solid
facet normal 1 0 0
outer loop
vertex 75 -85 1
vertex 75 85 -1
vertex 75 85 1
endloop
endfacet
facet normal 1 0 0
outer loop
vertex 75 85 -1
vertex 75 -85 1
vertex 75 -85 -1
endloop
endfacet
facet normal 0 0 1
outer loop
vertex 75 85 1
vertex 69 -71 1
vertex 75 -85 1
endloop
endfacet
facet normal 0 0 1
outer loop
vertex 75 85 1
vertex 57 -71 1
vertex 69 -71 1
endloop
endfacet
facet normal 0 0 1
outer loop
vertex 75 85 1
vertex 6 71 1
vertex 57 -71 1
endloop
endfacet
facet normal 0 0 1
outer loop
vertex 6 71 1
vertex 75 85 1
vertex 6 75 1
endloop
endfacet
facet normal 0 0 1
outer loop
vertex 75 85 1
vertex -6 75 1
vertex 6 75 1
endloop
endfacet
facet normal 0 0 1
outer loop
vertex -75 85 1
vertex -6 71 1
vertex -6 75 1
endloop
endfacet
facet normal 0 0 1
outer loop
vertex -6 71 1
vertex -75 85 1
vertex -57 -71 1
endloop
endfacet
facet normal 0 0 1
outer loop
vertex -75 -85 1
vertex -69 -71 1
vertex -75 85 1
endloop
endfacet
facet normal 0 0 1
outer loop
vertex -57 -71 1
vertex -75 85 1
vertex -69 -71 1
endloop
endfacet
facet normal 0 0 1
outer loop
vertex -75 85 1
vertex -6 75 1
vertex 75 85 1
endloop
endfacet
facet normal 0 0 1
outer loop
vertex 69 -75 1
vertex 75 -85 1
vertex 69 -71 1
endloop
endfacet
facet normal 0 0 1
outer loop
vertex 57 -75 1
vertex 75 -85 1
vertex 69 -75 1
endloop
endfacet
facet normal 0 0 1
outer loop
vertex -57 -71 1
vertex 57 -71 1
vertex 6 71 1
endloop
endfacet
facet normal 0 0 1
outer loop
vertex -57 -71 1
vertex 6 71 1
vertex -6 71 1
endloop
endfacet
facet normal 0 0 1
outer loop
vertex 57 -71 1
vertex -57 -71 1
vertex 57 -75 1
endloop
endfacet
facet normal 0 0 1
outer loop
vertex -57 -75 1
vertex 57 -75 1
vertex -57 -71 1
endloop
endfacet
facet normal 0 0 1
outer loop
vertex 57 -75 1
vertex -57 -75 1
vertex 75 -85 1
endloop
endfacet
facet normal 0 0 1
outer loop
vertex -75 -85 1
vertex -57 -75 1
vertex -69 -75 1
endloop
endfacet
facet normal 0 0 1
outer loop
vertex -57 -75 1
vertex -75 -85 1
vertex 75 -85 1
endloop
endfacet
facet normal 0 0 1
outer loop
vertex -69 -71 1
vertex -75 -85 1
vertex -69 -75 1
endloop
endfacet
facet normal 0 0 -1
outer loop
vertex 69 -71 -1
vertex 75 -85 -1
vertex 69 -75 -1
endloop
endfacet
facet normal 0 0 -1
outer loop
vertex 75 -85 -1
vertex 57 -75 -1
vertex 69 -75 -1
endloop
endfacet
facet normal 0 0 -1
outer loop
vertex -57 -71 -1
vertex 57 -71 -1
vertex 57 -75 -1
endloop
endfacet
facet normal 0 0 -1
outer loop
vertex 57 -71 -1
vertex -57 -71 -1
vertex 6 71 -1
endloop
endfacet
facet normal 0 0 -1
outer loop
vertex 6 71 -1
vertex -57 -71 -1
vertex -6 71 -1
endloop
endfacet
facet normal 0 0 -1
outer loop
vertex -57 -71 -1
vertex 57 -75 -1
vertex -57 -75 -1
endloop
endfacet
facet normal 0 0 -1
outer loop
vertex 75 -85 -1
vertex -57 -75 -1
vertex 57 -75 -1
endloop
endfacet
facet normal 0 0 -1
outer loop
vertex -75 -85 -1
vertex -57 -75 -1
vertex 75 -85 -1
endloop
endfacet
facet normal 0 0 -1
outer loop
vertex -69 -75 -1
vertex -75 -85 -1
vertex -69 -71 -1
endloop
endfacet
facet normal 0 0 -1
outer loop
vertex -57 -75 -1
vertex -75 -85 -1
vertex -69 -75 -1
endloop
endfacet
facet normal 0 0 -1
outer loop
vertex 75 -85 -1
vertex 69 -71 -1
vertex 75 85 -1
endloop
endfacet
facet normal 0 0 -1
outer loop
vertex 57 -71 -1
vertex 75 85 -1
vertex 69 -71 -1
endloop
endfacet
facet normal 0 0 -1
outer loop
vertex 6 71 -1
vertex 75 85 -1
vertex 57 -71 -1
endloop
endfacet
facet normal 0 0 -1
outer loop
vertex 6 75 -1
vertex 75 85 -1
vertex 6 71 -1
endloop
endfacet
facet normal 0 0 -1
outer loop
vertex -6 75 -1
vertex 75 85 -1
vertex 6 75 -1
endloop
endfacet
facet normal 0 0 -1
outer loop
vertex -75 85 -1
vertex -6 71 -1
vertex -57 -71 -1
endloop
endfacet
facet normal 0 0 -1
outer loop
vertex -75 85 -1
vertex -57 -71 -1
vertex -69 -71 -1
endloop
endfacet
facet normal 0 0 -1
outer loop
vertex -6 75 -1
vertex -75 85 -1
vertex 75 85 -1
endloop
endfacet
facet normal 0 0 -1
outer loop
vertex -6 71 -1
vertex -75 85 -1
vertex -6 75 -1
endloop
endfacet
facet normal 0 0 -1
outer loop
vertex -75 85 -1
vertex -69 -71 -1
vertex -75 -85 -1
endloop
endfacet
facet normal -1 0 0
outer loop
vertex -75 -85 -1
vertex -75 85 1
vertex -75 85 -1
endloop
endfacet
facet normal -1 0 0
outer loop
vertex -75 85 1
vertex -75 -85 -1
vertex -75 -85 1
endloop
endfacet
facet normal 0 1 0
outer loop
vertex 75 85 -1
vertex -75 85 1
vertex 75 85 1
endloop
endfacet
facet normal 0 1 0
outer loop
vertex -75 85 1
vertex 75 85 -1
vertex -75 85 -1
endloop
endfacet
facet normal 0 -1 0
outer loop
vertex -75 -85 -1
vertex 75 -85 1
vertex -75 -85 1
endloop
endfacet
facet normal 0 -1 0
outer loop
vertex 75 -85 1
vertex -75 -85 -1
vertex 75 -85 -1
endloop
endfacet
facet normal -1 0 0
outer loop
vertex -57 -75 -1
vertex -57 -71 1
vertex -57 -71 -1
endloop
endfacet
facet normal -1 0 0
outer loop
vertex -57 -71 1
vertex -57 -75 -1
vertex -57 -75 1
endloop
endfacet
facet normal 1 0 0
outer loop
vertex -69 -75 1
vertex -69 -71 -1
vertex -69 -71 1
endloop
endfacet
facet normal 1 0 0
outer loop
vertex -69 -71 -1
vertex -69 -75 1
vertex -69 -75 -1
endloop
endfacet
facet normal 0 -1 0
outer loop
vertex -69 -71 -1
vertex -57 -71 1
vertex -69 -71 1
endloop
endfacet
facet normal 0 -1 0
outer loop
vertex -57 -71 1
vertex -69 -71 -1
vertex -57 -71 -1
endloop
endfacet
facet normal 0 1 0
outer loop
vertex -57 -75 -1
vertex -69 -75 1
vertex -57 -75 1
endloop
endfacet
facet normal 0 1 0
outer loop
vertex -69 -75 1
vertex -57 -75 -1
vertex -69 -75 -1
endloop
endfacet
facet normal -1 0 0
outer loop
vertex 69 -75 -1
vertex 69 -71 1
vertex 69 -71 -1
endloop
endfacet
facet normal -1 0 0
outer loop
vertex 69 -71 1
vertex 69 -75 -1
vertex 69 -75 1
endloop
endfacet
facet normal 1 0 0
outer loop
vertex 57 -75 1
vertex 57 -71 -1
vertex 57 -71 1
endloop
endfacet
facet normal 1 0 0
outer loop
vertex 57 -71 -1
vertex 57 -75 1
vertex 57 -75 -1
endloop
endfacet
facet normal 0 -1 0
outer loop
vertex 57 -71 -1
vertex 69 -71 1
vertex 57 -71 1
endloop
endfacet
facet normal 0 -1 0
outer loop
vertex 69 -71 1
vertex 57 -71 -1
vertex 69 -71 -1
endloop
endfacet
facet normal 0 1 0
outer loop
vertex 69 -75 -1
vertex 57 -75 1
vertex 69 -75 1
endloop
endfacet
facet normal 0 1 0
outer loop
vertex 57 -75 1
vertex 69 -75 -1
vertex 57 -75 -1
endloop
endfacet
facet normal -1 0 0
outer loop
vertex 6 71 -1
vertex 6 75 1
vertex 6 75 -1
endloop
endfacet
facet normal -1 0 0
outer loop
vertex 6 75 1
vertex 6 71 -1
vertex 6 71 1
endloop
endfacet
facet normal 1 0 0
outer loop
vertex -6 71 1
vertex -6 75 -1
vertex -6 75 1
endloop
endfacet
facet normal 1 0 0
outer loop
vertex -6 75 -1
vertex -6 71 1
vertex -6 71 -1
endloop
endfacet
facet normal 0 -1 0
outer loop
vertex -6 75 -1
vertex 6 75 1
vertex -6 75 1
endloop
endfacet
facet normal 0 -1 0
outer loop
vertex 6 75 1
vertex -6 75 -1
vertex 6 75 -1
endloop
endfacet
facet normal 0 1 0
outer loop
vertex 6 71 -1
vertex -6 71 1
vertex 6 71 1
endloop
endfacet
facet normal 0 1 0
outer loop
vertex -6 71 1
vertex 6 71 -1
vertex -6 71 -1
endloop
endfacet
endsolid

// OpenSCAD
// ========================================
// a 150 x 170 x 2 mm plate with three 12 x 4 mm slots
// NeuroCAD canonical IR; dimensions are millimetres
// ========================================
$fn = 48;

difference() {
  cube(size=[150, 170, 2], center=true);
  translate([-63, -73, 0]) {
    cube(size=[12, 4, 4], center=true);
  }
  translate([63, -73, 0]) {
    cube(size=[12, 4, 4], center=true);
  }
  translate([0, 73, 0]) {
    cube(size=[12, 4, 4], center=true);
  }
}
